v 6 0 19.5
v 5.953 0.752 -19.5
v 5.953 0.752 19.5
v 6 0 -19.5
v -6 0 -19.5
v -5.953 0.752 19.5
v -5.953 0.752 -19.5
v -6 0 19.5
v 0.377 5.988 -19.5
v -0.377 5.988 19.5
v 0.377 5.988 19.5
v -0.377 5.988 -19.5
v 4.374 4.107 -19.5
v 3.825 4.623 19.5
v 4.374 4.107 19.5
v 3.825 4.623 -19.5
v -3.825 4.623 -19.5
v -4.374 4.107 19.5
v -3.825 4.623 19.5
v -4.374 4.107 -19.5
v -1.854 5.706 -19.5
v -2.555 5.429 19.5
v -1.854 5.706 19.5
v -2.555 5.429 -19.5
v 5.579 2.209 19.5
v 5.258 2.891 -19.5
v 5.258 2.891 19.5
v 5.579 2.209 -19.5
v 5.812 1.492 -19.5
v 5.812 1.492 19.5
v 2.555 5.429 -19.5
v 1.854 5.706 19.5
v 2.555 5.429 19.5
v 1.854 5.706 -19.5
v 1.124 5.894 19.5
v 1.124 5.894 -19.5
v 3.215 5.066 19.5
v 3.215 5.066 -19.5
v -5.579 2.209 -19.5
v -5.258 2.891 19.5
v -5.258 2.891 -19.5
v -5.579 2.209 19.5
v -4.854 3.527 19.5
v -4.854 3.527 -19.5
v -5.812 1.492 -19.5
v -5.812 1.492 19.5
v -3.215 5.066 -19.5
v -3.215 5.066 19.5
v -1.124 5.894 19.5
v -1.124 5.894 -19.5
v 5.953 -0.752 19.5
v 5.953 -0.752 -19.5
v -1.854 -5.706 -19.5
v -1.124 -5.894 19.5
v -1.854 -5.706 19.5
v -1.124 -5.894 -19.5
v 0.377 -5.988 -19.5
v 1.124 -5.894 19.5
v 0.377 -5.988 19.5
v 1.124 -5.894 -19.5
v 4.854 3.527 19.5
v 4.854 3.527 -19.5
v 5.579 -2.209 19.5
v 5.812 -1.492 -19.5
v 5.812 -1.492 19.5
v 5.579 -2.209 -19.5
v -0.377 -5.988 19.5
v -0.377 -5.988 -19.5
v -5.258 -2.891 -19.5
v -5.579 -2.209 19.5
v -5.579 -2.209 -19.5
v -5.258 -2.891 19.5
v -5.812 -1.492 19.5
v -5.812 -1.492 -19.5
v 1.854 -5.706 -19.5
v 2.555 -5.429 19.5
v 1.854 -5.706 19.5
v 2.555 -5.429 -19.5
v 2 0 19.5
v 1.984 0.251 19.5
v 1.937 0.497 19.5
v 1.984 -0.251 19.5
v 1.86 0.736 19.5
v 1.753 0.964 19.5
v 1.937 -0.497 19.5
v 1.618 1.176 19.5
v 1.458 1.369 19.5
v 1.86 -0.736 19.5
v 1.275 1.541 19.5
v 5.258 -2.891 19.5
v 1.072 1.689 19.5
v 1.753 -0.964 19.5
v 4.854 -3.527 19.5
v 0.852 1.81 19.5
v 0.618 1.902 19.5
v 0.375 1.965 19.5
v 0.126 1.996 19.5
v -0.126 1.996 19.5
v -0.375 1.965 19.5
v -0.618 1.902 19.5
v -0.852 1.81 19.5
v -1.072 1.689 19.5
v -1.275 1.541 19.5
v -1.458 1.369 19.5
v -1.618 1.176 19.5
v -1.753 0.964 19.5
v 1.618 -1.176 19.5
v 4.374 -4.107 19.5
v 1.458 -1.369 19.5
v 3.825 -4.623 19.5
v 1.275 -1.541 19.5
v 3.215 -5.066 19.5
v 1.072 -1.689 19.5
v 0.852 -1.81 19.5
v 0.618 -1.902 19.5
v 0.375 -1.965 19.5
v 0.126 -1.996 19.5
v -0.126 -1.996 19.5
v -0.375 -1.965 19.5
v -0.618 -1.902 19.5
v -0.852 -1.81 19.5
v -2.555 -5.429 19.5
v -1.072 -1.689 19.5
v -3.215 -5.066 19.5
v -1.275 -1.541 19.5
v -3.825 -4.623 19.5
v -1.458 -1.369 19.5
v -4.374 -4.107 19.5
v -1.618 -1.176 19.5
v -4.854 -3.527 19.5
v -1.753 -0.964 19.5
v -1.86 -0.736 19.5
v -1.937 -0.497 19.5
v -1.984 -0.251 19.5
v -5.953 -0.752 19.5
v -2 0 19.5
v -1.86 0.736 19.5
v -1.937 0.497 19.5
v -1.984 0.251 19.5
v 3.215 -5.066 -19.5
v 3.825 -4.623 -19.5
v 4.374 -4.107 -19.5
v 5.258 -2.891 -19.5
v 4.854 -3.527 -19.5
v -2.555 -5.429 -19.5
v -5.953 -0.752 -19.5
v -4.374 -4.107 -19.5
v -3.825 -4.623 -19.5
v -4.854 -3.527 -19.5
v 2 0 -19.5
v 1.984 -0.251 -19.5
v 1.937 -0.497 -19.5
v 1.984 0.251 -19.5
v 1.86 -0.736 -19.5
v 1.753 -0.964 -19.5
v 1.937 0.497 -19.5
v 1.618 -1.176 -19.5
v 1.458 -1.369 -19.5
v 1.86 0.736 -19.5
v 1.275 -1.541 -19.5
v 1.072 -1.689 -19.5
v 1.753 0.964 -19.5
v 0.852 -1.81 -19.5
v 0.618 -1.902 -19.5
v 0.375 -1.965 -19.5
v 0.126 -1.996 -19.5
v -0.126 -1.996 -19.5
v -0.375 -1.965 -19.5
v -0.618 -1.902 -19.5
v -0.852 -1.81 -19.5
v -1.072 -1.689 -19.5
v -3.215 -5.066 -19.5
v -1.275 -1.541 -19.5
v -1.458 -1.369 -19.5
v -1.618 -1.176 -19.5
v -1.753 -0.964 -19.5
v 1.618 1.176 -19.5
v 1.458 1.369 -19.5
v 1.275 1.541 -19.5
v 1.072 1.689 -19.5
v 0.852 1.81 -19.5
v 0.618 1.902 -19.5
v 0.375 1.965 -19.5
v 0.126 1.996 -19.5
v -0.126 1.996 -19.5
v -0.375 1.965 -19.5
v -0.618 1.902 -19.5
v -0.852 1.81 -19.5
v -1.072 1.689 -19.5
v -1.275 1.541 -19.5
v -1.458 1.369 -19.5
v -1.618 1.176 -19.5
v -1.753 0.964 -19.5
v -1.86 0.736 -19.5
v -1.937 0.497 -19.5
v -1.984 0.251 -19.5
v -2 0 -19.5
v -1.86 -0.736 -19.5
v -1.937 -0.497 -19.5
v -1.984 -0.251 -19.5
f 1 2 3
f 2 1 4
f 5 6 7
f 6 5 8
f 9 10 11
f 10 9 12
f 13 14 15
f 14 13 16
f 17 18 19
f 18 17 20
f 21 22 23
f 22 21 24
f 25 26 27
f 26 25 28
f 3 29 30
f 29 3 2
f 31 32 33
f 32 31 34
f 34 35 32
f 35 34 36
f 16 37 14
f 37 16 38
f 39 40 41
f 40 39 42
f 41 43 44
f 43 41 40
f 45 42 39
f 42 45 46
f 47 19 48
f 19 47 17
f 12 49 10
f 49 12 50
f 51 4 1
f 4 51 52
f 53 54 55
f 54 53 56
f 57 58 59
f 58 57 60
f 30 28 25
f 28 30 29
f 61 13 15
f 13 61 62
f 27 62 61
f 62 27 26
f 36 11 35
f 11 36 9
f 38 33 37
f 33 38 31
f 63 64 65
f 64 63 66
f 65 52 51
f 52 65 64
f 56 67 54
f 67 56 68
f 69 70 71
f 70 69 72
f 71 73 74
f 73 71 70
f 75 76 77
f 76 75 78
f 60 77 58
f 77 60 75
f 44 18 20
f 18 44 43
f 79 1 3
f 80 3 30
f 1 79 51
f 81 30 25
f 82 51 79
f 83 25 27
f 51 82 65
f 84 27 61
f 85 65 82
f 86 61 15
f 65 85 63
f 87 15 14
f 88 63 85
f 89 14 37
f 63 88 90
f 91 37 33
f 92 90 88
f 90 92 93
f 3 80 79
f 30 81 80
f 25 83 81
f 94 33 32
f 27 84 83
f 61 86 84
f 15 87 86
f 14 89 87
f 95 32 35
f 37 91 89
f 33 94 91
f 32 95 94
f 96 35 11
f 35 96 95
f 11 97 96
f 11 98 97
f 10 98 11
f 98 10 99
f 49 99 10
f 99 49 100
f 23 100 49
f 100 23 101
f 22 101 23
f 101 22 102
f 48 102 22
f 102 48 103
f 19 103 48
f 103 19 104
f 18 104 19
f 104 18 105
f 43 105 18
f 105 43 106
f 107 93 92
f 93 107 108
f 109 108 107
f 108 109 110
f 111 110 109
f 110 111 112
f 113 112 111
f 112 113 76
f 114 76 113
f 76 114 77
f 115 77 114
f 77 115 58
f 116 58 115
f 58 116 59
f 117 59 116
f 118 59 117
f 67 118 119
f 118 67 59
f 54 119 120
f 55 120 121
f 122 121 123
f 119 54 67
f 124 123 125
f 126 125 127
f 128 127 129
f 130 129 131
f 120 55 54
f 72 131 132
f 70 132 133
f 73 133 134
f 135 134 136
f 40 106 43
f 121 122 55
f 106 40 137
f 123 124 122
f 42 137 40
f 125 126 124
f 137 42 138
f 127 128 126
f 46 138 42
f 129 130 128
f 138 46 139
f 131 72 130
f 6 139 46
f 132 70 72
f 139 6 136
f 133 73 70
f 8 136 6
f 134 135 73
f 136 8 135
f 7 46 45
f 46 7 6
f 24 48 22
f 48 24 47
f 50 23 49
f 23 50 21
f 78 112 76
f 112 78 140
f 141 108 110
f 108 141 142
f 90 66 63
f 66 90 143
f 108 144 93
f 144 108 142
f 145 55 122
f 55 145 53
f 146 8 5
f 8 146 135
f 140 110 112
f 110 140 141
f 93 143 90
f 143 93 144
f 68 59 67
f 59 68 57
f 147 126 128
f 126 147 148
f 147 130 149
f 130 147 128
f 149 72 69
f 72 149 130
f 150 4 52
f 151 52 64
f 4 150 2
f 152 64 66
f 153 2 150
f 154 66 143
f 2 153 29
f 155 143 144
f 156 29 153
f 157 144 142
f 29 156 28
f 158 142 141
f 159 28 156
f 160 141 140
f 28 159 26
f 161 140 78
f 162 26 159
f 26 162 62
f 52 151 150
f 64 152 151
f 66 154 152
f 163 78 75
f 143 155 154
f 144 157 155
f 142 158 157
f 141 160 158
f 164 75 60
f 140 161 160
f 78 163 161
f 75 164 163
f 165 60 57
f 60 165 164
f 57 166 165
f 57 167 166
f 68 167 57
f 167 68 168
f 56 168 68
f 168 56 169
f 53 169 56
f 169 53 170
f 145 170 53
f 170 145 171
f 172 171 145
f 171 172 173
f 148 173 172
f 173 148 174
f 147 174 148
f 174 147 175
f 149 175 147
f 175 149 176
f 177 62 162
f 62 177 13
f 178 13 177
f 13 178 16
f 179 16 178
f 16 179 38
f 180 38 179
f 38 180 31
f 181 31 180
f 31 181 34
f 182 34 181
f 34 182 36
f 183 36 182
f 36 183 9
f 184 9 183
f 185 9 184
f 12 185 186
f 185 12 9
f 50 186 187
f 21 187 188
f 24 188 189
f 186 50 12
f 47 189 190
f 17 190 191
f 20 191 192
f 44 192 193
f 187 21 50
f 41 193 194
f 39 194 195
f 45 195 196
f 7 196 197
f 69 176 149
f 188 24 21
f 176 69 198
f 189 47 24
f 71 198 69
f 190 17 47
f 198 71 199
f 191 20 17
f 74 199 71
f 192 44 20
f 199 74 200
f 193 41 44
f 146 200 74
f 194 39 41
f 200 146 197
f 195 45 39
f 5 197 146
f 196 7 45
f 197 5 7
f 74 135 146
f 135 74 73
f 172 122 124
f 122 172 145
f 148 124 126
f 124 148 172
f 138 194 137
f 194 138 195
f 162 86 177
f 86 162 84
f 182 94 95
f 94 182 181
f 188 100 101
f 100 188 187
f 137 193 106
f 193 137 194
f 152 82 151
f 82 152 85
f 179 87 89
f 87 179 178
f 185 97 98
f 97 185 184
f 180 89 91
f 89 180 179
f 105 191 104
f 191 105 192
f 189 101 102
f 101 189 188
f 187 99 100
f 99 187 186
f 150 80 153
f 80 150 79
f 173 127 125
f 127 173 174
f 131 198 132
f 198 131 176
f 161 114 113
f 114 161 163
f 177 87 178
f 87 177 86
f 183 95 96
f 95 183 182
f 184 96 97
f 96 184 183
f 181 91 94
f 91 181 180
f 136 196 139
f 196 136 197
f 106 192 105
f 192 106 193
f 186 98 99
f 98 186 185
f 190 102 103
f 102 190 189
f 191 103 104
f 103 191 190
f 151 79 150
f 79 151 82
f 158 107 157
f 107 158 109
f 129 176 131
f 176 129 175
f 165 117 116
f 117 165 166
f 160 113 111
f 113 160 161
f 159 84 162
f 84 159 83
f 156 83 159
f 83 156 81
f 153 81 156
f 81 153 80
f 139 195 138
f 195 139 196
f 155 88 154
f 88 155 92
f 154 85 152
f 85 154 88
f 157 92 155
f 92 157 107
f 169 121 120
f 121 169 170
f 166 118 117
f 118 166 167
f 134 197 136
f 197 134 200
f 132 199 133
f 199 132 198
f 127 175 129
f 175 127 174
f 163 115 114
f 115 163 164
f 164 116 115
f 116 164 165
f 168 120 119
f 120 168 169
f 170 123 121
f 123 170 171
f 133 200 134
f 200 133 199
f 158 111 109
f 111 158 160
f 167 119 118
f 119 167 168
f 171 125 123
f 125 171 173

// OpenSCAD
$fn = 50;


difference() {
	union() {
		translate(v = [0, 0, -19.5000000000]) {
			cylinder(h = 39, r = 6.0000000000);
		}
	}
	union() {
		translate(v = [0, 0, -100.0000000000]) {
			cylinder(h = 200, r = 2.0000000000);
		}
	}
}
